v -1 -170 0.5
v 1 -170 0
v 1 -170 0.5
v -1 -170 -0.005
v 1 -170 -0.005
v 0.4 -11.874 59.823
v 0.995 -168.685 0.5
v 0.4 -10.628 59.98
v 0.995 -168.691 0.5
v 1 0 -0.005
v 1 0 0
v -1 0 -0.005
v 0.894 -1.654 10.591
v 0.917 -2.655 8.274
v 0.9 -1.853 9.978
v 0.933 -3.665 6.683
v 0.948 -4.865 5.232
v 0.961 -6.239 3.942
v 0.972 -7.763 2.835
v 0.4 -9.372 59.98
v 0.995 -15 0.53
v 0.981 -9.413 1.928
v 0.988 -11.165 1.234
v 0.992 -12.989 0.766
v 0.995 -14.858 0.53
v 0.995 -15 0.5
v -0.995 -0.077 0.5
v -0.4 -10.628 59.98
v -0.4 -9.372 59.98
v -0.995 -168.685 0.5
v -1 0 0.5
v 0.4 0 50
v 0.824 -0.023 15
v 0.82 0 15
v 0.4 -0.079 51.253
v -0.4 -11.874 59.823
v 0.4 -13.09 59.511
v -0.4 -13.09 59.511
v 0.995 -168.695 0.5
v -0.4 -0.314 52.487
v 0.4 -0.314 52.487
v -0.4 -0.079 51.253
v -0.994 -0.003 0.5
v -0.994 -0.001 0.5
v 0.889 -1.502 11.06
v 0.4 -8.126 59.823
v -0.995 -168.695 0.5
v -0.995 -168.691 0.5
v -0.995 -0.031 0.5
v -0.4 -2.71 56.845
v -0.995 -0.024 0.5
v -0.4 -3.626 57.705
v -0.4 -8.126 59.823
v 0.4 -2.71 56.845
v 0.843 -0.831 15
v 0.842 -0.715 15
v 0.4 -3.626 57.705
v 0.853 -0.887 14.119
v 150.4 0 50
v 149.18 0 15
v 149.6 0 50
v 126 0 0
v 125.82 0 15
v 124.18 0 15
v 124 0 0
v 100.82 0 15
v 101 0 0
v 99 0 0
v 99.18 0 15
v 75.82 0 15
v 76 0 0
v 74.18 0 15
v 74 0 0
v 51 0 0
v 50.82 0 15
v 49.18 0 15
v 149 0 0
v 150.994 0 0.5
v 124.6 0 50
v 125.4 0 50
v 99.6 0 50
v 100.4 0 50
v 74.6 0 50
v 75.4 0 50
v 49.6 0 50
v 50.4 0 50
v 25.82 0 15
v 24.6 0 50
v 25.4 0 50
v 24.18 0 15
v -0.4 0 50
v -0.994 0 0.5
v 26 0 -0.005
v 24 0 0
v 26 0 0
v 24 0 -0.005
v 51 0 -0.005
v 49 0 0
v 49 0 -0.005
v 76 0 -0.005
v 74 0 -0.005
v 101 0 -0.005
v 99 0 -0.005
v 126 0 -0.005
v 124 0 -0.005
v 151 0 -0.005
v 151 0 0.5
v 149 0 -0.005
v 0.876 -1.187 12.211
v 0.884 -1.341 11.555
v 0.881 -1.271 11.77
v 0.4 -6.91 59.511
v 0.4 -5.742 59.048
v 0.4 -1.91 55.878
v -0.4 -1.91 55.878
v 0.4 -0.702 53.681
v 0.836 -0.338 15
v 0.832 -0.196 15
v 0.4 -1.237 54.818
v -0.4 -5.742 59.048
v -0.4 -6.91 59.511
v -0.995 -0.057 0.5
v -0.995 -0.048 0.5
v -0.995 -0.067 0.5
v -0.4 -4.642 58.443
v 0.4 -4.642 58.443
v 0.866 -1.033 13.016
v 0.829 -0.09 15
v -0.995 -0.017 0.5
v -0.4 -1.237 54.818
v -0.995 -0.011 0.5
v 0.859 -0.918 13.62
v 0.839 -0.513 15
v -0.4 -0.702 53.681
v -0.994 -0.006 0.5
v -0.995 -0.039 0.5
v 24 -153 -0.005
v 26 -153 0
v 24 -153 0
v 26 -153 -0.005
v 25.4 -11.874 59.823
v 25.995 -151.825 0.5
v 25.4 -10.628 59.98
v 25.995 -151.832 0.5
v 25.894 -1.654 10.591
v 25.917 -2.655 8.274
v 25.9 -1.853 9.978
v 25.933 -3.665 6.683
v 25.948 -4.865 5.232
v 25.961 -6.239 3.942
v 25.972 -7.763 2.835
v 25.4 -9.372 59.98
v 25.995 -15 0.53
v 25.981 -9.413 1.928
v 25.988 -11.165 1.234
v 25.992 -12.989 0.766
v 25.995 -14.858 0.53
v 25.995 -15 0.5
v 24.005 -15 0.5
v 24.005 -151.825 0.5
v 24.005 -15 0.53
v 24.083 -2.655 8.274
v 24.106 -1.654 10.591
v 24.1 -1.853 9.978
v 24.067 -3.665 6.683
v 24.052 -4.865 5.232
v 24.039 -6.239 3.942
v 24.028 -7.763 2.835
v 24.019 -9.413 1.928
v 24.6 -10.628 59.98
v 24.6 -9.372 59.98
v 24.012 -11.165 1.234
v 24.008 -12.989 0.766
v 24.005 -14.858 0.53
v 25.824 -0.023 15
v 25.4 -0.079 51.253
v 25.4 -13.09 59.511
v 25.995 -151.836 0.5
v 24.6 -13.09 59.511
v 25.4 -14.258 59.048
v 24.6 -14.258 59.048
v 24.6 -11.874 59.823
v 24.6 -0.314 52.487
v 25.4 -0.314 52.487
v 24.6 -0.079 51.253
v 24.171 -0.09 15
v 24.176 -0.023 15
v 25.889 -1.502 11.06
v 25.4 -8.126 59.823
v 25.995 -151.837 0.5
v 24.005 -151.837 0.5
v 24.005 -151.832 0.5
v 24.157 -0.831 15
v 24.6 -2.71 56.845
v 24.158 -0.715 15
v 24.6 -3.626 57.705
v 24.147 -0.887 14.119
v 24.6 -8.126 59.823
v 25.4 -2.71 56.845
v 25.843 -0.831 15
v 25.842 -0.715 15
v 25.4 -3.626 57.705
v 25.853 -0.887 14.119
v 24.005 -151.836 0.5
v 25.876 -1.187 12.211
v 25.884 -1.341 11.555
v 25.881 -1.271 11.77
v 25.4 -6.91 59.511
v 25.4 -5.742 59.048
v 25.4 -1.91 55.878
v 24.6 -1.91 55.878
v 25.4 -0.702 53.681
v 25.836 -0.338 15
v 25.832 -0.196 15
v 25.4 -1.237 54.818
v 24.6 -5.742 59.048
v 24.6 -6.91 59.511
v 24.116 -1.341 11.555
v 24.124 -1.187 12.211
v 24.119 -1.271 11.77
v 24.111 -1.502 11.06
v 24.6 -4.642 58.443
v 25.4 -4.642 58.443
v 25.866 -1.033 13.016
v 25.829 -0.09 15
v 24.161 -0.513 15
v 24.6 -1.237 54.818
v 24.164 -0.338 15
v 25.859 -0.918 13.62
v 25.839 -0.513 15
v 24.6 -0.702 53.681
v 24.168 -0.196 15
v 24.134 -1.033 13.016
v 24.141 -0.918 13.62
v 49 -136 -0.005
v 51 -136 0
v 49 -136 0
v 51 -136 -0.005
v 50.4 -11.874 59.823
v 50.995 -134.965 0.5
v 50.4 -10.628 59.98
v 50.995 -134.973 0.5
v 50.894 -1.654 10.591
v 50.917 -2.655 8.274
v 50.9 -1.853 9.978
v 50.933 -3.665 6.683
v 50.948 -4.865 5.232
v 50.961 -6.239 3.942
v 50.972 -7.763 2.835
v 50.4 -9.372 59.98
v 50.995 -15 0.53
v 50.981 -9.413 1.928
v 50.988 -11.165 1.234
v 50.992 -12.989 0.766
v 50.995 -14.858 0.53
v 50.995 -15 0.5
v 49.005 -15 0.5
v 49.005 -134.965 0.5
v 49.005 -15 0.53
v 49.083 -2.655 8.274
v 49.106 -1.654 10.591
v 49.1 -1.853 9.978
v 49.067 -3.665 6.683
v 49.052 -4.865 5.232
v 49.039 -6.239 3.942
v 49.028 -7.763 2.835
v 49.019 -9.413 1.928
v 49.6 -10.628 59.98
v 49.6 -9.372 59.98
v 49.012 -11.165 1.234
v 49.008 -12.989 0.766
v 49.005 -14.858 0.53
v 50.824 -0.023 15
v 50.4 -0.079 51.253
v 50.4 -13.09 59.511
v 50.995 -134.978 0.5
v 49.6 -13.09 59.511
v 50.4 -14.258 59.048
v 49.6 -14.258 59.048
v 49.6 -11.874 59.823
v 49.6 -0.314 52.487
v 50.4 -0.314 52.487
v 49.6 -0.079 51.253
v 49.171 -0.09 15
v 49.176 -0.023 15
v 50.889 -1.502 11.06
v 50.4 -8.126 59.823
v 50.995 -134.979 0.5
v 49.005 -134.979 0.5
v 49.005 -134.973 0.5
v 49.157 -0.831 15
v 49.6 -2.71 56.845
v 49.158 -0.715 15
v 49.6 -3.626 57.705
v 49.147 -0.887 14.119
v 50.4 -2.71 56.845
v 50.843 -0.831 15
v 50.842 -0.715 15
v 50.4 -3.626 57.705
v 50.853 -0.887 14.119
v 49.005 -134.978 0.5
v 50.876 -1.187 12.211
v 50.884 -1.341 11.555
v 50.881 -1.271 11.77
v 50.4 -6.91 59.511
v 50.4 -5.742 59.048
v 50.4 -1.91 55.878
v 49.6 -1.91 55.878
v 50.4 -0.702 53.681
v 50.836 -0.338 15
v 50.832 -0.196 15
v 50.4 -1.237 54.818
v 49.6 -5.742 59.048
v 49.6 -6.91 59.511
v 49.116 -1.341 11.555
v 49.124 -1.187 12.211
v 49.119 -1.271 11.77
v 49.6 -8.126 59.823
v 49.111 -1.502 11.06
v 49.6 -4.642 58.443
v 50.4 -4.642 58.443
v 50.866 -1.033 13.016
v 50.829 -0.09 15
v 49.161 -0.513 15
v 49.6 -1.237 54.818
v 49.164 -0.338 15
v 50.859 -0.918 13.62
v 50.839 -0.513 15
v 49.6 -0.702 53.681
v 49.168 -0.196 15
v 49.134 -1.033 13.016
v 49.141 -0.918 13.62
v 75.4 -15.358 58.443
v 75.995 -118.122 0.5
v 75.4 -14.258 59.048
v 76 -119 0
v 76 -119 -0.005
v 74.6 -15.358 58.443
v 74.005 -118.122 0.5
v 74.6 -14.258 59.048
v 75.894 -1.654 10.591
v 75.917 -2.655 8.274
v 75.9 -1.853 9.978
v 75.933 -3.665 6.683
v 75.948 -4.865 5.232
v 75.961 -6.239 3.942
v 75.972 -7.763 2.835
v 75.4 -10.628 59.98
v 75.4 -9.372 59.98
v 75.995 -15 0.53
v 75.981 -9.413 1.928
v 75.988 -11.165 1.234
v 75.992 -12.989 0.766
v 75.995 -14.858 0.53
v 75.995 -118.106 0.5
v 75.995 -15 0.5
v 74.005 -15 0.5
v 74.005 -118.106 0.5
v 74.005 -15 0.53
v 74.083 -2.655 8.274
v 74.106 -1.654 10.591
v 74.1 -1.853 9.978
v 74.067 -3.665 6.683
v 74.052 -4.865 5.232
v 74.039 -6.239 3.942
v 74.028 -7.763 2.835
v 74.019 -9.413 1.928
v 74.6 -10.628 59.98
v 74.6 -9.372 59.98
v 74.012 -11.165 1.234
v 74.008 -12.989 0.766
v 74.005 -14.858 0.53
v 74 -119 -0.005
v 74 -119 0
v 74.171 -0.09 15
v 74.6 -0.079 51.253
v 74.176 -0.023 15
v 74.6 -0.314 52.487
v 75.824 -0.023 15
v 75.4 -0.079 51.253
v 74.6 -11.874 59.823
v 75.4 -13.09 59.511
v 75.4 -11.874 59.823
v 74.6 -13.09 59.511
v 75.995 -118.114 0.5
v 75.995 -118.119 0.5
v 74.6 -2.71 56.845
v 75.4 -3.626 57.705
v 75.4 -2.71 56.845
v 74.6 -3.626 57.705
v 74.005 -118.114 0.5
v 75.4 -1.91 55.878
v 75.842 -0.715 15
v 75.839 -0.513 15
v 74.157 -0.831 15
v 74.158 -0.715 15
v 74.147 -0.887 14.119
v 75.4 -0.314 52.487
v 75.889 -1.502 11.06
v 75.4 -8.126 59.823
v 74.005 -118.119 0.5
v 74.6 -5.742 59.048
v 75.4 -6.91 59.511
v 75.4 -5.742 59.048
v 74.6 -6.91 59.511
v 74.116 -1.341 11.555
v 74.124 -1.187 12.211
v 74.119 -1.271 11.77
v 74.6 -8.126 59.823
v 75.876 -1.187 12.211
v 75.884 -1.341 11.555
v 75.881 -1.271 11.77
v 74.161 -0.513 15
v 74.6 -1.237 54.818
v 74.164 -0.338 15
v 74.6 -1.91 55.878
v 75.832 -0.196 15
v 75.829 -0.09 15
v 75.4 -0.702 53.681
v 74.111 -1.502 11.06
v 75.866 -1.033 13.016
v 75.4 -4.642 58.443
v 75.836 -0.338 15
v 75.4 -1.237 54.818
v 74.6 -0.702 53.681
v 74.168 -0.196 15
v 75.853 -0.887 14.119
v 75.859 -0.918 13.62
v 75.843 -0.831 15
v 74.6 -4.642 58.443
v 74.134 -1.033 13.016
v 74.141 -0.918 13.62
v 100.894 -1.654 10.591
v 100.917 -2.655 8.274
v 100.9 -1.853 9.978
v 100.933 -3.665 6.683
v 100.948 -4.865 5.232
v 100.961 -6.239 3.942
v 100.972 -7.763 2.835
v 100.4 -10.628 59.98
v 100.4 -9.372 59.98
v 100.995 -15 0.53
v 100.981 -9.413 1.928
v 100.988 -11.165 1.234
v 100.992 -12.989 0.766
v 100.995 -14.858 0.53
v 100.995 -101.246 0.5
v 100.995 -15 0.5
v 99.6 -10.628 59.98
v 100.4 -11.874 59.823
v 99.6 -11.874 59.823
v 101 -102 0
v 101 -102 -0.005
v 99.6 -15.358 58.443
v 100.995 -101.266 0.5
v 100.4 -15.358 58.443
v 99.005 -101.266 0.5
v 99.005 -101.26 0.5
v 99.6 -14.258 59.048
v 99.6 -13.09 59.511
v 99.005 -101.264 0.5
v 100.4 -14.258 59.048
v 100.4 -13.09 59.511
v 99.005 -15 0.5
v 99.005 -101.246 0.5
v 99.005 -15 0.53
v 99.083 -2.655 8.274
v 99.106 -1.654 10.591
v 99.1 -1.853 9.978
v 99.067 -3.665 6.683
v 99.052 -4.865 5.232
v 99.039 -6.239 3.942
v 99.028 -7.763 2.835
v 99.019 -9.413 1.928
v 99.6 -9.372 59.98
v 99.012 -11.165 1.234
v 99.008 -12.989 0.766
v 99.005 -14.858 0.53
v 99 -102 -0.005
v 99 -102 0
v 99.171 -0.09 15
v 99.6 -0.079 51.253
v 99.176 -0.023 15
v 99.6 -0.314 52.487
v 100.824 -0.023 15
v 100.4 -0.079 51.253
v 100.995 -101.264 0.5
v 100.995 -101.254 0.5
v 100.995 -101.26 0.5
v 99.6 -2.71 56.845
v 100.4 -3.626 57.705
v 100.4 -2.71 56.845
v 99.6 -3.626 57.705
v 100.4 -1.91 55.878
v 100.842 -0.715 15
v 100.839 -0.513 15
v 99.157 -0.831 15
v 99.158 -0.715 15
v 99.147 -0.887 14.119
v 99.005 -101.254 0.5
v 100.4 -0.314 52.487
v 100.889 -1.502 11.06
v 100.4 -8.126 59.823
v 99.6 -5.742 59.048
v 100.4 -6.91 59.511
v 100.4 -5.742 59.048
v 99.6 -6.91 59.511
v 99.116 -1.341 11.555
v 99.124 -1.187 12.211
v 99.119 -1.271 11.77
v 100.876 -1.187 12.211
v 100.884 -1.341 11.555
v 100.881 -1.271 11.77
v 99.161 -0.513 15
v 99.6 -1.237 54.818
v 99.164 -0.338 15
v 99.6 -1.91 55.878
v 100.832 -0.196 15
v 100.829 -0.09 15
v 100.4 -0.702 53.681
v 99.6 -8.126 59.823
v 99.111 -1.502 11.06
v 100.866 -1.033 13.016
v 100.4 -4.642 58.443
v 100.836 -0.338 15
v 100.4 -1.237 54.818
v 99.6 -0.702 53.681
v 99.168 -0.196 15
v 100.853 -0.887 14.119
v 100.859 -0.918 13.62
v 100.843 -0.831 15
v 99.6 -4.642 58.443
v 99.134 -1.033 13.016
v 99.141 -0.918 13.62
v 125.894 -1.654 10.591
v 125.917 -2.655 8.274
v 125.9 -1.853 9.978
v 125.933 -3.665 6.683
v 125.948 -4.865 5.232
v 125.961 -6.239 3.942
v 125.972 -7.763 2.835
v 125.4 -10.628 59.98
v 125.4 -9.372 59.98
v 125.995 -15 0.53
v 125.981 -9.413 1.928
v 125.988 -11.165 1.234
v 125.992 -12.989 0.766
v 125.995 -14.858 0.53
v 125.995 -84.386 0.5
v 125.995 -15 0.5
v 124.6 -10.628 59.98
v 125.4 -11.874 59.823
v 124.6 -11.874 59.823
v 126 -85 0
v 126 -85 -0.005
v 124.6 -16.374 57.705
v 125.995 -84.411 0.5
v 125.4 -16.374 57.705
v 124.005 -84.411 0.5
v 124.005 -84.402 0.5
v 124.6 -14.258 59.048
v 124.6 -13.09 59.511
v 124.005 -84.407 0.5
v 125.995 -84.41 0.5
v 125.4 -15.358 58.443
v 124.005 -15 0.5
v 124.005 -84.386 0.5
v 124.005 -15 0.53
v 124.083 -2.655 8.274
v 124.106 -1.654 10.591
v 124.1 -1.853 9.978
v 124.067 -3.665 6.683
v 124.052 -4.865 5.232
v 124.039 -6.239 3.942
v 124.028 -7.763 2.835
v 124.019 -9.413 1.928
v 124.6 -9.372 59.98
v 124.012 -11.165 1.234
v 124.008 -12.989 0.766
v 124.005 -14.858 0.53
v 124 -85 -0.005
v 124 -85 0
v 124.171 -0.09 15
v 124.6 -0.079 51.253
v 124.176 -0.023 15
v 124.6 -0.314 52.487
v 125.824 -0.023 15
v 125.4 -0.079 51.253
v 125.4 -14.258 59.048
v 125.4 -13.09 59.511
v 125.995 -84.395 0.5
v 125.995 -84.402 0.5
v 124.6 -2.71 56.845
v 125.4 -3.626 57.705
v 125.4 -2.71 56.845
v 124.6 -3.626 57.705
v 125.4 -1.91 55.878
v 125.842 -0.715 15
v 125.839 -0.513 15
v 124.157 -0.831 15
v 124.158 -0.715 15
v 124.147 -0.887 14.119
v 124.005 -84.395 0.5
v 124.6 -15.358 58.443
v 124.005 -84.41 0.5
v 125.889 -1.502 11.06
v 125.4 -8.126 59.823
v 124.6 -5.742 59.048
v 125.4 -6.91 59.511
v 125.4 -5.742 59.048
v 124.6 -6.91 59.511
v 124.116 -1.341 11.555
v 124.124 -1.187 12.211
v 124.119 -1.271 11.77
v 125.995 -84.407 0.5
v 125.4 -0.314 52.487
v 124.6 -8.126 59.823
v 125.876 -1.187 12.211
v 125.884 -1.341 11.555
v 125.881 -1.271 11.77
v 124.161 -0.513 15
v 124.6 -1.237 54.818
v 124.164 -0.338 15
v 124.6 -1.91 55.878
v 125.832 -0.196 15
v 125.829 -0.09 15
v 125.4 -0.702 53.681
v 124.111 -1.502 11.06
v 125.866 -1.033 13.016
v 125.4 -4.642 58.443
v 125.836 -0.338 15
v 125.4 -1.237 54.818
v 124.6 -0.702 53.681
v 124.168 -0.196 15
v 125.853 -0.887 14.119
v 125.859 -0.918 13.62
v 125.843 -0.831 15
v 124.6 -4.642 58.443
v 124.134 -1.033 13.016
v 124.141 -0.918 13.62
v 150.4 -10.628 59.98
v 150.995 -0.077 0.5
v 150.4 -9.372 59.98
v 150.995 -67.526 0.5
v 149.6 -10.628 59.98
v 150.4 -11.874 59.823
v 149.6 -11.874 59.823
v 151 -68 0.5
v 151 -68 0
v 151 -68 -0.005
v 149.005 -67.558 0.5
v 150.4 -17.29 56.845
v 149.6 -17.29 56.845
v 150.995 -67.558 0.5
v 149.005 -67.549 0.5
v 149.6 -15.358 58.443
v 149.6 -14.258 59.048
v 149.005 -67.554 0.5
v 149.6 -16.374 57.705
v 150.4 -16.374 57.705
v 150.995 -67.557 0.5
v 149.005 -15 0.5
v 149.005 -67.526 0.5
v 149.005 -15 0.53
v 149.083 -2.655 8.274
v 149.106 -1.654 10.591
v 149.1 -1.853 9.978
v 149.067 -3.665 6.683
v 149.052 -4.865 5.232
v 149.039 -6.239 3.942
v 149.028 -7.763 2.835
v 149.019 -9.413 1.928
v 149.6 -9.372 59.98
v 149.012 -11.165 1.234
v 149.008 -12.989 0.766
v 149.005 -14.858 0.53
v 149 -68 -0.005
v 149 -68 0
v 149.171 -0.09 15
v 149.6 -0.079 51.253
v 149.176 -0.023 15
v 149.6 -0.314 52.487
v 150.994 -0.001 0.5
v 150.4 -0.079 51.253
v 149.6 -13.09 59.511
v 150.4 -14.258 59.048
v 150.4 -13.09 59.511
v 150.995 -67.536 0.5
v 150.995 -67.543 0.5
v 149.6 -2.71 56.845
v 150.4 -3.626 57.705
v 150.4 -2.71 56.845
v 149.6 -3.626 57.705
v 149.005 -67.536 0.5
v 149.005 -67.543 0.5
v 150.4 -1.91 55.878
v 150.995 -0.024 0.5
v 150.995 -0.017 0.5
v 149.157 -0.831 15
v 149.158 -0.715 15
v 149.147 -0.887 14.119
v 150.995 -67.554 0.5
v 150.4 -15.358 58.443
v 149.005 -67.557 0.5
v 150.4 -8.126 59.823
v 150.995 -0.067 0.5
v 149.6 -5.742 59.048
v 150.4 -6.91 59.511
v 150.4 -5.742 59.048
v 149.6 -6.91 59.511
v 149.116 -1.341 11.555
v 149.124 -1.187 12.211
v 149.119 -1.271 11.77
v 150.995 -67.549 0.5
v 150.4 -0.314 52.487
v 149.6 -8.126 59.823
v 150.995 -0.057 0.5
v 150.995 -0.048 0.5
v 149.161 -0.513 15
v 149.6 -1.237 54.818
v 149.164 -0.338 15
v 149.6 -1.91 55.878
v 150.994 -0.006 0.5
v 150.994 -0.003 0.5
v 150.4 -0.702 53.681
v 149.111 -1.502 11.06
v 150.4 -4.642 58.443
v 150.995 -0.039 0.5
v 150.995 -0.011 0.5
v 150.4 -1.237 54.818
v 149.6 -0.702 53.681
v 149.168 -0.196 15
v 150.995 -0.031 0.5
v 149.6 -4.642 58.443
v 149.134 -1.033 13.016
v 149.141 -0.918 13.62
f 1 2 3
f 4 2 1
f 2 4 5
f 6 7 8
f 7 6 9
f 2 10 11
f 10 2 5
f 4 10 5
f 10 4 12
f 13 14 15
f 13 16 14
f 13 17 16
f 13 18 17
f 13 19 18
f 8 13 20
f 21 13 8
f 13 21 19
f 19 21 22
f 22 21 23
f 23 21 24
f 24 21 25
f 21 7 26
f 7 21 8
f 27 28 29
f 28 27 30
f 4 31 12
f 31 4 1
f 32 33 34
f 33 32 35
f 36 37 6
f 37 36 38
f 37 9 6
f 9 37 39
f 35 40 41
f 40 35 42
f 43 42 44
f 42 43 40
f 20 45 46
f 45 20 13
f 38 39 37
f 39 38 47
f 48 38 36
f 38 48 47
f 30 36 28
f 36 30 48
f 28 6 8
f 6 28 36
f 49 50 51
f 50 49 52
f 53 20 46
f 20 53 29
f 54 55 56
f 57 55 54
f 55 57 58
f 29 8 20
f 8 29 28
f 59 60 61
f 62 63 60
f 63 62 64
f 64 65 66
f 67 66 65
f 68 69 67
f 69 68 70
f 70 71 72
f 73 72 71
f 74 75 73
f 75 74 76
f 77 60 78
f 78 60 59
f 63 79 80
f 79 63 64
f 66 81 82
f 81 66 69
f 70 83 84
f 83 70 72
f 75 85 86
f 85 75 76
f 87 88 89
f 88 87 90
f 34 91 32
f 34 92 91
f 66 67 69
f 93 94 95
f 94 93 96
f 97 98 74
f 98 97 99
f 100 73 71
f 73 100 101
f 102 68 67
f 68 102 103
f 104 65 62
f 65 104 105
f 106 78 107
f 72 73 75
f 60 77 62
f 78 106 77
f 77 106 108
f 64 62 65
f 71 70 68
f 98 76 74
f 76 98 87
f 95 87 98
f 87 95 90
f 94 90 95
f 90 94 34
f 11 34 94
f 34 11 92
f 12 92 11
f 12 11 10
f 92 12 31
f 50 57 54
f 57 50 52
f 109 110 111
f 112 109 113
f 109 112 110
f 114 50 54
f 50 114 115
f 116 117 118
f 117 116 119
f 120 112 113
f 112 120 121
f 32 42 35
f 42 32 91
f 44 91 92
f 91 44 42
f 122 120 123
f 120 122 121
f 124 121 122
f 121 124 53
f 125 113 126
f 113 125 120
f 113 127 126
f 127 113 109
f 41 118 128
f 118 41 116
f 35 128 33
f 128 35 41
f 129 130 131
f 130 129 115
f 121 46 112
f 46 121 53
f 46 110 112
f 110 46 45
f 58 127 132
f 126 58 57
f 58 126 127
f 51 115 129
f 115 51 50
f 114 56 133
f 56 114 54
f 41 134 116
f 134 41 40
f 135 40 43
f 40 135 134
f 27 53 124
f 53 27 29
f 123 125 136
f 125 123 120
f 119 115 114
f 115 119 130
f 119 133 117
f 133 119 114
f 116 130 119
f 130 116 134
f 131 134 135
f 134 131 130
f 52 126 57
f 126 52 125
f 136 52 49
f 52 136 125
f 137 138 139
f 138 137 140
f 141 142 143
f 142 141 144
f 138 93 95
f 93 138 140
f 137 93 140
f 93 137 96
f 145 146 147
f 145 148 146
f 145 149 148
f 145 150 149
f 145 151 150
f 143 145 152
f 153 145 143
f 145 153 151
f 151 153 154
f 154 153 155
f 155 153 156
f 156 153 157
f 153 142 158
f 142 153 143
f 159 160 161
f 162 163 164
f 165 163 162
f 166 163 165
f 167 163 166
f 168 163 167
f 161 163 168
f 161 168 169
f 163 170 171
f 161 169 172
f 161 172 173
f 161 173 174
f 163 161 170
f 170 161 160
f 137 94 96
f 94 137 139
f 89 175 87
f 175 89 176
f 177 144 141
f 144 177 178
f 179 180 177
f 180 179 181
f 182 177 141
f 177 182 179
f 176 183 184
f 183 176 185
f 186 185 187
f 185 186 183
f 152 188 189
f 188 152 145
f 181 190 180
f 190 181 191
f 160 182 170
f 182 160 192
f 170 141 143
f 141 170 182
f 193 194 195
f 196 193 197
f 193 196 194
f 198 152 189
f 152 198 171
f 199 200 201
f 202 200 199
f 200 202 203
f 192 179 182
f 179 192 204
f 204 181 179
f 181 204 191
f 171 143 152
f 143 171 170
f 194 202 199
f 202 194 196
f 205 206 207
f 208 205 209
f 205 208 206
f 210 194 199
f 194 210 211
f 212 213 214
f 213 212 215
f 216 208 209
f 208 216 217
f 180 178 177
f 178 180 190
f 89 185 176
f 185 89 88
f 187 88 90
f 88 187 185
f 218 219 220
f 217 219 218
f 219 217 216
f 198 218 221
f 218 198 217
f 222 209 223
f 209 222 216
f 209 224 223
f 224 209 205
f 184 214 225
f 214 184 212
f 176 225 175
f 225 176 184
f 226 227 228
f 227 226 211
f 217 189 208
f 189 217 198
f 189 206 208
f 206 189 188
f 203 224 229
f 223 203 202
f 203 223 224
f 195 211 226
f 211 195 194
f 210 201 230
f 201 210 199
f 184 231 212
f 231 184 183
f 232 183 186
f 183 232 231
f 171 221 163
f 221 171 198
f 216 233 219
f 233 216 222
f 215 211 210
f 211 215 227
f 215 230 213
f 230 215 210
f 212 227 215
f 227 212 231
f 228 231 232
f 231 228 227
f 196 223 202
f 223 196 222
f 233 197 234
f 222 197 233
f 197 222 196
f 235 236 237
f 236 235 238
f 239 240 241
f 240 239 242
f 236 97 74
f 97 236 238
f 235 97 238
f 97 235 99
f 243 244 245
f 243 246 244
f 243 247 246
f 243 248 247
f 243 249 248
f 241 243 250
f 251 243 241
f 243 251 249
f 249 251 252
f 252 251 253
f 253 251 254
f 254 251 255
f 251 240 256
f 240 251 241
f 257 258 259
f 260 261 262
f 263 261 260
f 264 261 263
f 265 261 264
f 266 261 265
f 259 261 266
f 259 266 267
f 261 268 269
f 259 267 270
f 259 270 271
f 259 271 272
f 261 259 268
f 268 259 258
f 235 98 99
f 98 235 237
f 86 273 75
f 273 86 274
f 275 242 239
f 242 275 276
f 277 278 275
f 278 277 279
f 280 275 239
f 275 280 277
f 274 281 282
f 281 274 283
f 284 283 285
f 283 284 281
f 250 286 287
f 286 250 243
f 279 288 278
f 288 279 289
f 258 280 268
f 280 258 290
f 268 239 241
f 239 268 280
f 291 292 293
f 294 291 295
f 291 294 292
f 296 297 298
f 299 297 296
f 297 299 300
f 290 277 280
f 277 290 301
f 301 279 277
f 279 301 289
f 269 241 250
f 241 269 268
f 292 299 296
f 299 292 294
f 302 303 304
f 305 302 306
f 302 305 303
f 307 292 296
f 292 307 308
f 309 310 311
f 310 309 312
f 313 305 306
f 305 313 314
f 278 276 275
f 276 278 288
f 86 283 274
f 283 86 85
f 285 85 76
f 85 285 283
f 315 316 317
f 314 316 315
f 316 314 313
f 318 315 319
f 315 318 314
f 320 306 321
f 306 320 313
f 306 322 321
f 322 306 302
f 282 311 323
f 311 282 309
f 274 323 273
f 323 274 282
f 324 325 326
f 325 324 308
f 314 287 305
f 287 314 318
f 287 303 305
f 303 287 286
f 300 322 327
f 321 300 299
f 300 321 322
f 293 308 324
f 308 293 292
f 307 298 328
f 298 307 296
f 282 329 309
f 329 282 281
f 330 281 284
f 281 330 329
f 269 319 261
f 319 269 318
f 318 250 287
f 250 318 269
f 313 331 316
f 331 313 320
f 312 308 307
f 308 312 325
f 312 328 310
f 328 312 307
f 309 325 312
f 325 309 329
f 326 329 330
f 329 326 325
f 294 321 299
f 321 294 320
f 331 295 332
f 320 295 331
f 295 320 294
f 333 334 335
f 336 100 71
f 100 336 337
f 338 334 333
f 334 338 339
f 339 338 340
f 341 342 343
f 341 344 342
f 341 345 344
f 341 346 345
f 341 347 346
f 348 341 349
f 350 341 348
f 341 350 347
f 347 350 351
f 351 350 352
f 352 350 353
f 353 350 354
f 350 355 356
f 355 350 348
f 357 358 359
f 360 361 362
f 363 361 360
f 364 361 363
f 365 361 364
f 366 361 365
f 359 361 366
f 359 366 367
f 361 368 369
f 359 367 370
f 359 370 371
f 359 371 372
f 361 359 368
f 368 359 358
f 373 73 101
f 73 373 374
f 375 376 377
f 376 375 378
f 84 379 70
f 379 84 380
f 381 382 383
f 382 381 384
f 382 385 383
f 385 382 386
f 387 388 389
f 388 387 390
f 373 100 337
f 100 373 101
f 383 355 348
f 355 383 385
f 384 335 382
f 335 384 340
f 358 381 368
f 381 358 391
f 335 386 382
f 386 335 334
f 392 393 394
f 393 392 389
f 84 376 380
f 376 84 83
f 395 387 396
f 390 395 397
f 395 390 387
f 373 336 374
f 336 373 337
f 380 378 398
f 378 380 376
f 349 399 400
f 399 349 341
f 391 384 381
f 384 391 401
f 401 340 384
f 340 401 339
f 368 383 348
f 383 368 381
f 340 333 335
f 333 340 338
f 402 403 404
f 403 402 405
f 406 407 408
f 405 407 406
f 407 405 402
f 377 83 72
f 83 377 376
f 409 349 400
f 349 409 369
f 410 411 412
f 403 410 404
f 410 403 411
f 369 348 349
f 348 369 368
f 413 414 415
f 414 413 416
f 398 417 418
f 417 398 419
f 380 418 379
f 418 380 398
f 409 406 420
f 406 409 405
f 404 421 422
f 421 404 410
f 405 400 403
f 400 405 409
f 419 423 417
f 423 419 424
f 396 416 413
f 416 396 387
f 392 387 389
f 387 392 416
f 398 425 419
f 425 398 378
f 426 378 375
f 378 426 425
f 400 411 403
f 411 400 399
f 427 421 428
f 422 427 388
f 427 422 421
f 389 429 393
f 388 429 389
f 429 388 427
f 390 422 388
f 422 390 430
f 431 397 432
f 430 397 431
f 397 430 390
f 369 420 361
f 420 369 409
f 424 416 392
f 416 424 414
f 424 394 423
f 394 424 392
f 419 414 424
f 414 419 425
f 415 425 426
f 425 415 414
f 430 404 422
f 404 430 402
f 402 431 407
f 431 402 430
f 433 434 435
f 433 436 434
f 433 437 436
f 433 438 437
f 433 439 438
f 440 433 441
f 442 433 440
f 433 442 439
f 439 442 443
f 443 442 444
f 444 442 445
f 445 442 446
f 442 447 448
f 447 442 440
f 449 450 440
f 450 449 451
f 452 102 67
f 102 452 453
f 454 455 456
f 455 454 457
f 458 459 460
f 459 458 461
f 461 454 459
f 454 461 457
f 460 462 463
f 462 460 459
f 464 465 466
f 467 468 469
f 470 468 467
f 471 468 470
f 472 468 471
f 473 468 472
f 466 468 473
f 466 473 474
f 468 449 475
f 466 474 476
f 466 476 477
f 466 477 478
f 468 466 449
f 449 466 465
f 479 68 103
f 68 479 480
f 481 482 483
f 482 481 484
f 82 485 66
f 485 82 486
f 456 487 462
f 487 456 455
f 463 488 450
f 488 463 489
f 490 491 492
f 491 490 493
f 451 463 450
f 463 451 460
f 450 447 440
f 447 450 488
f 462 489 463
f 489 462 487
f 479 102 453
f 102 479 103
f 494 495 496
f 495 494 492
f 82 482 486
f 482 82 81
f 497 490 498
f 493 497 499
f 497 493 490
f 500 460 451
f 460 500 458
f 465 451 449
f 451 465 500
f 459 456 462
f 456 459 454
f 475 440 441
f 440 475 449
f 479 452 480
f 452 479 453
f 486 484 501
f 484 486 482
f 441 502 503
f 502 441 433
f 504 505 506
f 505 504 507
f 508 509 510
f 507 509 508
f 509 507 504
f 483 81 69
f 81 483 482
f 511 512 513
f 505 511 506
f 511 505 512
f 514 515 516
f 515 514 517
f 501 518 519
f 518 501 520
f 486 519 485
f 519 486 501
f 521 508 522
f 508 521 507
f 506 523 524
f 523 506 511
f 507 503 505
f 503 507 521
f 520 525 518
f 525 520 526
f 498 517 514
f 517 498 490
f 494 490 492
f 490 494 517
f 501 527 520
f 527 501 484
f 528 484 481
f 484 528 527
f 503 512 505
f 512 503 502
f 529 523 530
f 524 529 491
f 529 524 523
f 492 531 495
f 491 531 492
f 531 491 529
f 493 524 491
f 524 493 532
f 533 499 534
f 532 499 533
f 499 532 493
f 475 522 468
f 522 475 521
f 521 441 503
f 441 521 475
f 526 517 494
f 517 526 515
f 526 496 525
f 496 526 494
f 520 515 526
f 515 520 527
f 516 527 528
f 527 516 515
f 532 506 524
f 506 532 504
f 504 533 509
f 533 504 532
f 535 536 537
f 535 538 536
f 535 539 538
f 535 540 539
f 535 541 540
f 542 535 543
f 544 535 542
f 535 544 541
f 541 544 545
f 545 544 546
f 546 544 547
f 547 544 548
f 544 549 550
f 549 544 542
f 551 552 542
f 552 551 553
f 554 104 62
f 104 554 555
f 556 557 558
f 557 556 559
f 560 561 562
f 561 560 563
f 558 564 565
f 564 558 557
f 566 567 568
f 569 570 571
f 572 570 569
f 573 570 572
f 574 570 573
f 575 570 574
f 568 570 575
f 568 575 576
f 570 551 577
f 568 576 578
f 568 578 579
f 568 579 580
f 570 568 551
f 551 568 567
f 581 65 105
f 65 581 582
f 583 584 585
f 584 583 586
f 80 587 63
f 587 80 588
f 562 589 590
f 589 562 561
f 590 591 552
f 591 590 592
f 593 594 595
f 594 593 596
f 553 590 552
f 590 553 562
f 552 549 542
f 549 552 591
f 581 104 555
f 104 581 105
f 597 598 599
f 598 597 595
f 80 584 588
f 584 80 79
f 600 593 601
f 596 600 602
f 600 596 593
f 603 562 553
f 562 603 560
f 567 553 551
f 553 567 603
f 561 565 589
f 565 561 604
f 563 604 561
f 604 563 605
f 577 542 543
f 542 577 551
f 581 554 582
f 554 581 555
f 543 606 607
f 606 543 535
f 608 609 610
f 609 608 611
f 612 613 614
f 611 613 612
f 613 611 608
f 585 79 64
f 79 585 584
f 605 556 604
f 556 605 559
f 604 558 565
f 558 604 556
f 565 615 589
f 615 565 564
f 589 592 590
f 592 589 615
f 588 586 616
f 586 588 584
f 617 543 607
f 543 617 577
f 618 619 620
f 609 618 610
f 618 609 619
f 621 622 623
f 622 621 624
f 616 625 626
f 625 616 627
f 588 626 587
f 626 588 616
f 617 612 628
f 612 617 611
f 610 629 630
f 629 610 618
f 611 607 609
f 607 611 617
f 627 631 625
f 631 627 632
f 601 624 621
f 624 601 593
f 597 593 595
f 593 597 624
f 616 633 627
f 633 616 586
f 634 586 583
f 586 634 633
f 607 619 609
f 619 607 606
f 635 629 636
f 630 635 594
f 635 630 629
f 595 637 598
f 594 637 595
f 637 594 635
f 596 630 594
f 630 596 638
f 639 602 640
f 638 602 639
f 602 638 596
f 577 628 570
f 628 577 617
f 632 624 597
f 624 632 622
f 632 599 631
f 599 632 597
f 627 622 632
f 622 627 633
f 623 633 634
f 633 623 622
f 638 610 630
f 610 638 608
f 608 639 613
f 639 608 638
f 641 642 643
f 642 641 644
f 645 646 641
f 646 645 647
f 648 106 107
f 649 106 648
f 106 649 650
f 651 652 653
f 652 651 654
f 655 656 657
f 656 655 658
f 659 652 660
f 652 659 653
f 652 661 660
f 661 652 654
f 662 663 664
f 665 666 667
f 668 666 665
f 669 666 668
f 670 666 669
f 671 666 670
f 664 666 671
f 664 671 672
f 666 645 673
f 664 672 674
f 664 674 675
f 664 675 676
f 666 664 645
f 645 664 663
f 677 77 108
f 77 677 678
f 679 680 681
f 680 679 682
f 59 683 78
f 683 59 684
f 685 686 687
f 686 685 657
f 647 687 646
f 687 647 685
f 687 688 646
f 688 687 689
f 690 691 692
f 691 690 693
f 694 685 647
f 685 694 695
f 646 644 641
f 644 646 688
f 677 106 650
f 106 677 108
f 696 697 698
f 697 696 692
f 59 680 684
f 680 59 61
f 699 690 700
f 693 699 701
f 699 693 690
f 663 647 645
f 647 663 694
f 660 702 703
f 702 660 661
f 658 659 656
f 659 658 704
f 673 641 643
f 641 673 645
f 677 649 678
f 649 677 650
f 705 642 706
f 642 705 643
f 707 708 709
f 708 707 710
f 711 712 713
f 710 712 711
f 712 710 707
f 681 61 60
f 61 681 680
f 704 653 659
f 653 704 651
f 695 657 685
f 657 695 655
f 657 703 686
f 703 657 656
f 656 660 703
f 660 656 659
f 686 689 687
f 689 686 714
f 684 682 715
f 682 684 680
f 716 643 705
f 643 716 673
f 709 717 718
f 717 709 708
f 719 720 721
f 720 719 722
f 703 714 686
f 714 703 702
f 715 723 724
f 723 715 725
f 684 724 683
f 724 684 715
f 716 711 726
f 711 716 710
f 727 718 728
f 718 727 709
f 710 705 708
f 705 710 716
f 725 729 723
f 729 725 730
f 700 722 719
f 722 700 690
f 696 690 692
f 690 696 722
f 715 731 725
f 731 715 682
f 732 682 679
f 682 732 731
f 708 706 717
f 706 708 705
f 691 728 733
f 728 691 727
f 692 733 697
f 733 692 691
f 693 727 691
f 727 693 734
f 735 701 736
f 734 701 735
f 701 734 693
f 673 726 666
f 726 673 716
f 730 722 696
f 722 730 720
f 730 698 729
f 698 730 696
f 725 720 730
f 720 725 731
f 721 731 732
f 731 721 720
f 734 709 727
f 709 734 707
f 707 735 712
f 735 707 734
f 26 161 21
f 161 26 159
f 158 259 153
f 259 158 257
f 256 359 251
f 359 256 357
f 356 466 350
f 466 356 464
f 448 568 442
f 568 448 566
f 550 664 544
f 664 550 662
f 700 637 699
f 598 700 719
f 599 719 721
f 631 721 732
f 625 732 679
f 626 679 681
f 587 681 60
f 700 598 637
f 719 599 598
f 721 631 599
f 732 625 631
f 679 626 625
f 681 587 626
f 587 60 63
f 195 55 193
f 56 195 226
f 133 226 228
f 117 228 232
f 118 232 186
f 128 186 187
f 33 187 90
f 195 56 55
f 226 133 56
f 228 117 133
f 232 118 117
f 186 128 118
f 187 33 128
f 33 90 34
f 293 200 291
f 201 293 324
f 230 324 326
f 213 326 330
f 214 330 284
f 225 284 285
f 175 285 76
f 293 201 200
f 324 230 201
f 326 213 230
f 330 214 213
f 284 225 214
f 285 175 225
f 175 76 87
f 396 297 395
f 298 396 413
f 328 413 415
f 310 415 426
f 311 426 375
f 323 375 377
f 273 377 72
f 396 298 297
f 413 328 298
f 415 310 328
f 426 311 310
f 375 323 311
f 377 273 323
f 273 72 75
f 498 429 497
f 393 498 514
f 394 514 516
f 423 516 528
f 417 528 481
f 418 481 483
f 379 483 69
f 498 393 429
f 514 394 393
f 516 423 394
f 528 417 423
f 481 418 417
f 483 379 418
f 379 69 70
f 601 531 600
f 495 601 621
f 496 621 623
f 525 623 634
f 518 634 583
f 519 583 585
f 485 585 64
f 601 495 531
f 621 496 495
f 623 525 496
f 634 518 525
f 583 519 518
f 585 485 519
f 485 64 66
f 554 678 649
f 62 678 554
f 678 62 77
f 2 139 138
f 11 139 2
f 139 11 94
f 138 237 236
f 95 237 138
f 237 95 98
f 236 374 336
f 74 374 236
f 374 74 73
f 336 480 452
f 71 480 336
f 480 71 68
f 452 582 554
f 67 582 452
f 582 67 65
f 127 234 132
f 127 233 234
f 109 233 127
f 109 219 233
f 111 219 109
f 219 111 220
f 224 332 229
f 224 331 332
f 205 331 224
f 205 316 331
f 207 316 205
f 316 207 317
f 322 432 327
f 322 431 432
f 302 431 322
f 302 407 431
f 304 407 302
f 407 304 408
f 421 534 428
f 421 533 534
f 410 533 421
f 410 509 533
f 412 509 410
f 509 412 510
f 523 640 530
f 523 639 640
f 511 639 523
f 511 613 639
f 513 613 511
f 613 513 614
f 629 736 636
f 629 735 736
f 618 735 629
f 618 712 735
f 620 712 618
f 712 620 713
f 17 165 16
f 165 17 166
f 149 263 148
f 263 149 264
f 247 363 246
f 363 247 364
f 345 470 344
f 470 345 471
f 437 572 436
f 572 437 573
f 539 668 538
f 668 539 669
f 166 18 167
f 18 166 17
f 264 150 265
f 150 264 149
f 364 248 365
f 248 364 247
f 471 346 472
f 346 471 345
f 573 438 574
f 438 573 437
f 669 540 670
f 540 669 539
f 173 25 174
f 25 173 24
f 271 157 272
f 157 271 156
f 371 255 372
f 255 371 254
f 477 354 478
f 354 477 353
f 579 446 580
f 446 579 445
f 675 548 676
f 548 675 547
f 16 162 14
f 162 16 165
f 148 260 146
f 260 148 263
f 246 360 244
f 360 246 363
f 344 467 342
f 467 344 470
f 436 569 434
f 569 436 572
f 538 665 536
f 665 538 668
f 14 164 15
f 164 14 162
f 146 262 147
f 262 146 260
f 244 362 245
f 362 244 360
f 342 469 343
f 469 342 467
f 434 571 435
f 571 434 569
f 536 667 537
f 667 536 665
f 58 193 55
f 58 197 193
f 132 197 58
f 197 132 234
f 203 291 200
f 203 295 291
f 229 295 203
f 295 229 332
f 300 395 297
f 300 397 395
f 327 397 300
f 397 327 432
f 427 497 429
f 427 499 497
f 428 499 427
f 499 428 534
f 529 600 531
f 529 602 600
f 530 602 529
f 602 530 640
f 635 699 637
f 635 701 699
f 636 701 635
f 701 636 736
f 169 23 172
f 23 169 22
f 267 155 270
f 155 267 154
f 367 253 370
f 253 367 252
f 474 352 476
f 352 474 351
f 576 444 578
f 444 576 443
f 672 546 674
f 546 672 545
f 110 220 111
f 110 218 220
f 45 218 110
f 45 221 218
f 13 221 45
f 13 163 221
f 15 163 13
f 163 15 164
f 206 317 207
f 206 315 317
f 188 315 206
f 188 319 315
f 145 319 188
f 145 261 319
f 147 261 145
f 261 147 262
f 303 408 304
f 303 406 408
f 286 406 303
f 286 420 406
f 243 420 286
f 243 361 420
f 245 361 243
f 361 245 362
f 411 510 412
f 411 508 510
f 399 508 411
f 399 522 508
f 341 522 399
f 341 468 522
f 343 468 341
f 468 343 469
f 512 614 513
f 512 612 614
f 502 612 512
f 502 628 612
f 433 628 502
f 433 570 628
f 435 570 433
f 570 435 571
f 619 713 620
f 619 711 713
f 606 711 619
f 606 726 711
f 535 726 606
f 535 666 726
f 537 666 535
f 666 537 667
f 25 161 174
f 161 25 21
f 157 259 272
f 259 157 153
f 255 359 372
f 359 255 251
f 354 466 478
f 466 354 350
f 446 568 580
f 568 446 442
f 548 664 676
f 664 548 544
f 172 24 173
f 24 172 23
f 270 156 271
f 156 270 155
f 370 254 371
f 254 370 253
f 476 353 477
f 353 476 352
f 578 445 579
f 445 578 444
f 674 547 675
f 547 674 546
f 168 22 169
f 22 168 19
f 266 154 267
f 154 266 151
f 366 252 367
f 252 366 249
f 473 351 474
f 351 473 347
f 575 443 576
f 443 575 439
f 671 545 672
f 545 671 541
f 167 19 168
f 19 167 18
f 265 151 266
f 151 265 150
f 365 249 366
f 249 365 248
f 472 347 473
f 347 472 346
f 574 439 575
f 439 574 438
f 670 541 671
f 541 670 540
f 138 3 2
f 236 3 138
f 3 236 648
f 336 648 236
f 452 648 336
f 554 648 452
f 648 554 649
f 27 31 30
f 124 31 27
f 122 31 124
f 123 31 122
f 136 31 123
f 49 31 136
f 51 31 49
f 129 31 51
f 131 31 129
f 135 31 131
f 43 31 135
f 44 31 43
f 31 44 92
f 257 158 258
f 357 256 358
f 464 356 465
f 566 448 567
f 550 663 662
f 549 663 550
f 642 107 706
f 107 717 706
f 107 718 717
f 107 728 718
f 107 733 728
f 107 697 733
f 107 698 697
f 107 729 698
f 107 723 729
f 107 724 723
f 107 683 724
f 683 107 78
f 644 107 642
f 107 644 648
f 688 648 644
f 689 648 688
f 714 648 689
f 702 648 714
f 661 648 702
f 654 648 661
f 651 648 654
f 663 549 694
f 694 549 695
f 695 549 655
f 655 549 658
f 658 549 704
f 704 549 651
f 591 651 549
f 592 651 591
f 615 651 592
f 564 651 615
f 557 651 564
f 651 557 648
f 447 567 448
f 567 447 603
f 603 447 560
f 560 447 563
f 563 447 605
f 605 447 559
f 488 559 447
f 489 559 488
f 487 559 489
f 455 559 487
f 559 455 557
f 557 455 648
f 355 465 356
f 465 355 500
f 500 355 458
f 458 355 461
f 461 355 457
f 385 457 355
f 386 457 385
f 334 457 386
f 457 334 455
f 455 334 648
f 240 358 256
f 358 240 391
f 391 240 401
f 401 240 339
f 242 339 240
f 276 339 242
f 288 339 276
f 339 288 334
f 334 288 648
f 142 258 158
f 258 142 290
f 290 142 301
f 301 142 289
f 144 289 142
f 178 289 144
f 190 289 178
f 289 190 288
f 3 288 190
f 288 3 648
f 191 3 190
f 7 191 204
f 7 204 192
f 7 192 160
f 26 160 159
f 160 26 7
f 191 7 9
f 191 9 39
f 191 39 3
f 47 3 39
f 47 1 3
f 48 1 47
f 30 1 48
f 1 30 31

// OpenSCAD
// Device Charging Fin Holder (e.g. Smartphones and Battery Packs)
// Brian Khuu 2023
// Intended for adding fins to IKEA Skadis parametric pegboard tray so you can place smartphones and other devices vertically
//      e.g. https://www.printables.com/model/47813-ikea-skadis-parametric-pegboard-tray
$fn=50;

// Length of Fins
length=170;
// Smallest Spacing
spacingBiggest=25;
spacingSmallest=15; // Can't figure out how to do cumulative summation...
// Number Of Slots
slotcount=6;

/* [Print Spec] */
wallTopThickness=0.8;
wallBottomThickness=2;
wallHeight=60;
baseThickness=0.5;

/* [Styling] */
// Slot Top Rounding
finSlotRounding=20;
// Slot Bottom Rounding
finBottomRounding=30;

/* [Calcuation] */
// Slot Shrinkage
slotshrink = length/(slotcount+4);

rotate([0,0,90*3])
{
    // Fins
    for (i=[0:1:slotcount])
    {
        translate([0,i*spacingBiggest,0])
        hull()
        {
            translate([(length-i*slotshrink)/2,0,0]) cube([(length-i*slotshrink),wallBottomThickness,0.01], center=true);
            translate([finSlotRounding/2,0,wallHeight-finSlotRounding/2]) rotate([90,0,0]) cylinder(d=finSlotRounding, h=wallTopThickness, center=true);
        }
    }

    // Curved Base
    union()
    {
        difference()
        {
            cube([finBottomRounding/2,spacingBiggest*slotcount,finBottomRounding/2]);
                translate([finBottomRounding/2+wallTopThickness,0,finBottomRounding/2+baseThickness]) 
                    rotate([90,0,180]) cylinder(d=finBottomRounding, h=spacingBiggest*slotcount);
        }
        if (0)
        cube([wallTopThickness,spacingBiggest*slotcount,wallHeight-finSlotRounding/2]);
    }

    // Base
    hull()
    {
        for(i = [0:1:slotcount])
        {
            translate([0,i*spacingBiggest,baseThickness/2])
                    translate([(length-i*slotshrink)/2,0,0]) cube([(length-i*slotshrink),wallBottomThickness,baseThickness], center=true);
        }
    }
}
